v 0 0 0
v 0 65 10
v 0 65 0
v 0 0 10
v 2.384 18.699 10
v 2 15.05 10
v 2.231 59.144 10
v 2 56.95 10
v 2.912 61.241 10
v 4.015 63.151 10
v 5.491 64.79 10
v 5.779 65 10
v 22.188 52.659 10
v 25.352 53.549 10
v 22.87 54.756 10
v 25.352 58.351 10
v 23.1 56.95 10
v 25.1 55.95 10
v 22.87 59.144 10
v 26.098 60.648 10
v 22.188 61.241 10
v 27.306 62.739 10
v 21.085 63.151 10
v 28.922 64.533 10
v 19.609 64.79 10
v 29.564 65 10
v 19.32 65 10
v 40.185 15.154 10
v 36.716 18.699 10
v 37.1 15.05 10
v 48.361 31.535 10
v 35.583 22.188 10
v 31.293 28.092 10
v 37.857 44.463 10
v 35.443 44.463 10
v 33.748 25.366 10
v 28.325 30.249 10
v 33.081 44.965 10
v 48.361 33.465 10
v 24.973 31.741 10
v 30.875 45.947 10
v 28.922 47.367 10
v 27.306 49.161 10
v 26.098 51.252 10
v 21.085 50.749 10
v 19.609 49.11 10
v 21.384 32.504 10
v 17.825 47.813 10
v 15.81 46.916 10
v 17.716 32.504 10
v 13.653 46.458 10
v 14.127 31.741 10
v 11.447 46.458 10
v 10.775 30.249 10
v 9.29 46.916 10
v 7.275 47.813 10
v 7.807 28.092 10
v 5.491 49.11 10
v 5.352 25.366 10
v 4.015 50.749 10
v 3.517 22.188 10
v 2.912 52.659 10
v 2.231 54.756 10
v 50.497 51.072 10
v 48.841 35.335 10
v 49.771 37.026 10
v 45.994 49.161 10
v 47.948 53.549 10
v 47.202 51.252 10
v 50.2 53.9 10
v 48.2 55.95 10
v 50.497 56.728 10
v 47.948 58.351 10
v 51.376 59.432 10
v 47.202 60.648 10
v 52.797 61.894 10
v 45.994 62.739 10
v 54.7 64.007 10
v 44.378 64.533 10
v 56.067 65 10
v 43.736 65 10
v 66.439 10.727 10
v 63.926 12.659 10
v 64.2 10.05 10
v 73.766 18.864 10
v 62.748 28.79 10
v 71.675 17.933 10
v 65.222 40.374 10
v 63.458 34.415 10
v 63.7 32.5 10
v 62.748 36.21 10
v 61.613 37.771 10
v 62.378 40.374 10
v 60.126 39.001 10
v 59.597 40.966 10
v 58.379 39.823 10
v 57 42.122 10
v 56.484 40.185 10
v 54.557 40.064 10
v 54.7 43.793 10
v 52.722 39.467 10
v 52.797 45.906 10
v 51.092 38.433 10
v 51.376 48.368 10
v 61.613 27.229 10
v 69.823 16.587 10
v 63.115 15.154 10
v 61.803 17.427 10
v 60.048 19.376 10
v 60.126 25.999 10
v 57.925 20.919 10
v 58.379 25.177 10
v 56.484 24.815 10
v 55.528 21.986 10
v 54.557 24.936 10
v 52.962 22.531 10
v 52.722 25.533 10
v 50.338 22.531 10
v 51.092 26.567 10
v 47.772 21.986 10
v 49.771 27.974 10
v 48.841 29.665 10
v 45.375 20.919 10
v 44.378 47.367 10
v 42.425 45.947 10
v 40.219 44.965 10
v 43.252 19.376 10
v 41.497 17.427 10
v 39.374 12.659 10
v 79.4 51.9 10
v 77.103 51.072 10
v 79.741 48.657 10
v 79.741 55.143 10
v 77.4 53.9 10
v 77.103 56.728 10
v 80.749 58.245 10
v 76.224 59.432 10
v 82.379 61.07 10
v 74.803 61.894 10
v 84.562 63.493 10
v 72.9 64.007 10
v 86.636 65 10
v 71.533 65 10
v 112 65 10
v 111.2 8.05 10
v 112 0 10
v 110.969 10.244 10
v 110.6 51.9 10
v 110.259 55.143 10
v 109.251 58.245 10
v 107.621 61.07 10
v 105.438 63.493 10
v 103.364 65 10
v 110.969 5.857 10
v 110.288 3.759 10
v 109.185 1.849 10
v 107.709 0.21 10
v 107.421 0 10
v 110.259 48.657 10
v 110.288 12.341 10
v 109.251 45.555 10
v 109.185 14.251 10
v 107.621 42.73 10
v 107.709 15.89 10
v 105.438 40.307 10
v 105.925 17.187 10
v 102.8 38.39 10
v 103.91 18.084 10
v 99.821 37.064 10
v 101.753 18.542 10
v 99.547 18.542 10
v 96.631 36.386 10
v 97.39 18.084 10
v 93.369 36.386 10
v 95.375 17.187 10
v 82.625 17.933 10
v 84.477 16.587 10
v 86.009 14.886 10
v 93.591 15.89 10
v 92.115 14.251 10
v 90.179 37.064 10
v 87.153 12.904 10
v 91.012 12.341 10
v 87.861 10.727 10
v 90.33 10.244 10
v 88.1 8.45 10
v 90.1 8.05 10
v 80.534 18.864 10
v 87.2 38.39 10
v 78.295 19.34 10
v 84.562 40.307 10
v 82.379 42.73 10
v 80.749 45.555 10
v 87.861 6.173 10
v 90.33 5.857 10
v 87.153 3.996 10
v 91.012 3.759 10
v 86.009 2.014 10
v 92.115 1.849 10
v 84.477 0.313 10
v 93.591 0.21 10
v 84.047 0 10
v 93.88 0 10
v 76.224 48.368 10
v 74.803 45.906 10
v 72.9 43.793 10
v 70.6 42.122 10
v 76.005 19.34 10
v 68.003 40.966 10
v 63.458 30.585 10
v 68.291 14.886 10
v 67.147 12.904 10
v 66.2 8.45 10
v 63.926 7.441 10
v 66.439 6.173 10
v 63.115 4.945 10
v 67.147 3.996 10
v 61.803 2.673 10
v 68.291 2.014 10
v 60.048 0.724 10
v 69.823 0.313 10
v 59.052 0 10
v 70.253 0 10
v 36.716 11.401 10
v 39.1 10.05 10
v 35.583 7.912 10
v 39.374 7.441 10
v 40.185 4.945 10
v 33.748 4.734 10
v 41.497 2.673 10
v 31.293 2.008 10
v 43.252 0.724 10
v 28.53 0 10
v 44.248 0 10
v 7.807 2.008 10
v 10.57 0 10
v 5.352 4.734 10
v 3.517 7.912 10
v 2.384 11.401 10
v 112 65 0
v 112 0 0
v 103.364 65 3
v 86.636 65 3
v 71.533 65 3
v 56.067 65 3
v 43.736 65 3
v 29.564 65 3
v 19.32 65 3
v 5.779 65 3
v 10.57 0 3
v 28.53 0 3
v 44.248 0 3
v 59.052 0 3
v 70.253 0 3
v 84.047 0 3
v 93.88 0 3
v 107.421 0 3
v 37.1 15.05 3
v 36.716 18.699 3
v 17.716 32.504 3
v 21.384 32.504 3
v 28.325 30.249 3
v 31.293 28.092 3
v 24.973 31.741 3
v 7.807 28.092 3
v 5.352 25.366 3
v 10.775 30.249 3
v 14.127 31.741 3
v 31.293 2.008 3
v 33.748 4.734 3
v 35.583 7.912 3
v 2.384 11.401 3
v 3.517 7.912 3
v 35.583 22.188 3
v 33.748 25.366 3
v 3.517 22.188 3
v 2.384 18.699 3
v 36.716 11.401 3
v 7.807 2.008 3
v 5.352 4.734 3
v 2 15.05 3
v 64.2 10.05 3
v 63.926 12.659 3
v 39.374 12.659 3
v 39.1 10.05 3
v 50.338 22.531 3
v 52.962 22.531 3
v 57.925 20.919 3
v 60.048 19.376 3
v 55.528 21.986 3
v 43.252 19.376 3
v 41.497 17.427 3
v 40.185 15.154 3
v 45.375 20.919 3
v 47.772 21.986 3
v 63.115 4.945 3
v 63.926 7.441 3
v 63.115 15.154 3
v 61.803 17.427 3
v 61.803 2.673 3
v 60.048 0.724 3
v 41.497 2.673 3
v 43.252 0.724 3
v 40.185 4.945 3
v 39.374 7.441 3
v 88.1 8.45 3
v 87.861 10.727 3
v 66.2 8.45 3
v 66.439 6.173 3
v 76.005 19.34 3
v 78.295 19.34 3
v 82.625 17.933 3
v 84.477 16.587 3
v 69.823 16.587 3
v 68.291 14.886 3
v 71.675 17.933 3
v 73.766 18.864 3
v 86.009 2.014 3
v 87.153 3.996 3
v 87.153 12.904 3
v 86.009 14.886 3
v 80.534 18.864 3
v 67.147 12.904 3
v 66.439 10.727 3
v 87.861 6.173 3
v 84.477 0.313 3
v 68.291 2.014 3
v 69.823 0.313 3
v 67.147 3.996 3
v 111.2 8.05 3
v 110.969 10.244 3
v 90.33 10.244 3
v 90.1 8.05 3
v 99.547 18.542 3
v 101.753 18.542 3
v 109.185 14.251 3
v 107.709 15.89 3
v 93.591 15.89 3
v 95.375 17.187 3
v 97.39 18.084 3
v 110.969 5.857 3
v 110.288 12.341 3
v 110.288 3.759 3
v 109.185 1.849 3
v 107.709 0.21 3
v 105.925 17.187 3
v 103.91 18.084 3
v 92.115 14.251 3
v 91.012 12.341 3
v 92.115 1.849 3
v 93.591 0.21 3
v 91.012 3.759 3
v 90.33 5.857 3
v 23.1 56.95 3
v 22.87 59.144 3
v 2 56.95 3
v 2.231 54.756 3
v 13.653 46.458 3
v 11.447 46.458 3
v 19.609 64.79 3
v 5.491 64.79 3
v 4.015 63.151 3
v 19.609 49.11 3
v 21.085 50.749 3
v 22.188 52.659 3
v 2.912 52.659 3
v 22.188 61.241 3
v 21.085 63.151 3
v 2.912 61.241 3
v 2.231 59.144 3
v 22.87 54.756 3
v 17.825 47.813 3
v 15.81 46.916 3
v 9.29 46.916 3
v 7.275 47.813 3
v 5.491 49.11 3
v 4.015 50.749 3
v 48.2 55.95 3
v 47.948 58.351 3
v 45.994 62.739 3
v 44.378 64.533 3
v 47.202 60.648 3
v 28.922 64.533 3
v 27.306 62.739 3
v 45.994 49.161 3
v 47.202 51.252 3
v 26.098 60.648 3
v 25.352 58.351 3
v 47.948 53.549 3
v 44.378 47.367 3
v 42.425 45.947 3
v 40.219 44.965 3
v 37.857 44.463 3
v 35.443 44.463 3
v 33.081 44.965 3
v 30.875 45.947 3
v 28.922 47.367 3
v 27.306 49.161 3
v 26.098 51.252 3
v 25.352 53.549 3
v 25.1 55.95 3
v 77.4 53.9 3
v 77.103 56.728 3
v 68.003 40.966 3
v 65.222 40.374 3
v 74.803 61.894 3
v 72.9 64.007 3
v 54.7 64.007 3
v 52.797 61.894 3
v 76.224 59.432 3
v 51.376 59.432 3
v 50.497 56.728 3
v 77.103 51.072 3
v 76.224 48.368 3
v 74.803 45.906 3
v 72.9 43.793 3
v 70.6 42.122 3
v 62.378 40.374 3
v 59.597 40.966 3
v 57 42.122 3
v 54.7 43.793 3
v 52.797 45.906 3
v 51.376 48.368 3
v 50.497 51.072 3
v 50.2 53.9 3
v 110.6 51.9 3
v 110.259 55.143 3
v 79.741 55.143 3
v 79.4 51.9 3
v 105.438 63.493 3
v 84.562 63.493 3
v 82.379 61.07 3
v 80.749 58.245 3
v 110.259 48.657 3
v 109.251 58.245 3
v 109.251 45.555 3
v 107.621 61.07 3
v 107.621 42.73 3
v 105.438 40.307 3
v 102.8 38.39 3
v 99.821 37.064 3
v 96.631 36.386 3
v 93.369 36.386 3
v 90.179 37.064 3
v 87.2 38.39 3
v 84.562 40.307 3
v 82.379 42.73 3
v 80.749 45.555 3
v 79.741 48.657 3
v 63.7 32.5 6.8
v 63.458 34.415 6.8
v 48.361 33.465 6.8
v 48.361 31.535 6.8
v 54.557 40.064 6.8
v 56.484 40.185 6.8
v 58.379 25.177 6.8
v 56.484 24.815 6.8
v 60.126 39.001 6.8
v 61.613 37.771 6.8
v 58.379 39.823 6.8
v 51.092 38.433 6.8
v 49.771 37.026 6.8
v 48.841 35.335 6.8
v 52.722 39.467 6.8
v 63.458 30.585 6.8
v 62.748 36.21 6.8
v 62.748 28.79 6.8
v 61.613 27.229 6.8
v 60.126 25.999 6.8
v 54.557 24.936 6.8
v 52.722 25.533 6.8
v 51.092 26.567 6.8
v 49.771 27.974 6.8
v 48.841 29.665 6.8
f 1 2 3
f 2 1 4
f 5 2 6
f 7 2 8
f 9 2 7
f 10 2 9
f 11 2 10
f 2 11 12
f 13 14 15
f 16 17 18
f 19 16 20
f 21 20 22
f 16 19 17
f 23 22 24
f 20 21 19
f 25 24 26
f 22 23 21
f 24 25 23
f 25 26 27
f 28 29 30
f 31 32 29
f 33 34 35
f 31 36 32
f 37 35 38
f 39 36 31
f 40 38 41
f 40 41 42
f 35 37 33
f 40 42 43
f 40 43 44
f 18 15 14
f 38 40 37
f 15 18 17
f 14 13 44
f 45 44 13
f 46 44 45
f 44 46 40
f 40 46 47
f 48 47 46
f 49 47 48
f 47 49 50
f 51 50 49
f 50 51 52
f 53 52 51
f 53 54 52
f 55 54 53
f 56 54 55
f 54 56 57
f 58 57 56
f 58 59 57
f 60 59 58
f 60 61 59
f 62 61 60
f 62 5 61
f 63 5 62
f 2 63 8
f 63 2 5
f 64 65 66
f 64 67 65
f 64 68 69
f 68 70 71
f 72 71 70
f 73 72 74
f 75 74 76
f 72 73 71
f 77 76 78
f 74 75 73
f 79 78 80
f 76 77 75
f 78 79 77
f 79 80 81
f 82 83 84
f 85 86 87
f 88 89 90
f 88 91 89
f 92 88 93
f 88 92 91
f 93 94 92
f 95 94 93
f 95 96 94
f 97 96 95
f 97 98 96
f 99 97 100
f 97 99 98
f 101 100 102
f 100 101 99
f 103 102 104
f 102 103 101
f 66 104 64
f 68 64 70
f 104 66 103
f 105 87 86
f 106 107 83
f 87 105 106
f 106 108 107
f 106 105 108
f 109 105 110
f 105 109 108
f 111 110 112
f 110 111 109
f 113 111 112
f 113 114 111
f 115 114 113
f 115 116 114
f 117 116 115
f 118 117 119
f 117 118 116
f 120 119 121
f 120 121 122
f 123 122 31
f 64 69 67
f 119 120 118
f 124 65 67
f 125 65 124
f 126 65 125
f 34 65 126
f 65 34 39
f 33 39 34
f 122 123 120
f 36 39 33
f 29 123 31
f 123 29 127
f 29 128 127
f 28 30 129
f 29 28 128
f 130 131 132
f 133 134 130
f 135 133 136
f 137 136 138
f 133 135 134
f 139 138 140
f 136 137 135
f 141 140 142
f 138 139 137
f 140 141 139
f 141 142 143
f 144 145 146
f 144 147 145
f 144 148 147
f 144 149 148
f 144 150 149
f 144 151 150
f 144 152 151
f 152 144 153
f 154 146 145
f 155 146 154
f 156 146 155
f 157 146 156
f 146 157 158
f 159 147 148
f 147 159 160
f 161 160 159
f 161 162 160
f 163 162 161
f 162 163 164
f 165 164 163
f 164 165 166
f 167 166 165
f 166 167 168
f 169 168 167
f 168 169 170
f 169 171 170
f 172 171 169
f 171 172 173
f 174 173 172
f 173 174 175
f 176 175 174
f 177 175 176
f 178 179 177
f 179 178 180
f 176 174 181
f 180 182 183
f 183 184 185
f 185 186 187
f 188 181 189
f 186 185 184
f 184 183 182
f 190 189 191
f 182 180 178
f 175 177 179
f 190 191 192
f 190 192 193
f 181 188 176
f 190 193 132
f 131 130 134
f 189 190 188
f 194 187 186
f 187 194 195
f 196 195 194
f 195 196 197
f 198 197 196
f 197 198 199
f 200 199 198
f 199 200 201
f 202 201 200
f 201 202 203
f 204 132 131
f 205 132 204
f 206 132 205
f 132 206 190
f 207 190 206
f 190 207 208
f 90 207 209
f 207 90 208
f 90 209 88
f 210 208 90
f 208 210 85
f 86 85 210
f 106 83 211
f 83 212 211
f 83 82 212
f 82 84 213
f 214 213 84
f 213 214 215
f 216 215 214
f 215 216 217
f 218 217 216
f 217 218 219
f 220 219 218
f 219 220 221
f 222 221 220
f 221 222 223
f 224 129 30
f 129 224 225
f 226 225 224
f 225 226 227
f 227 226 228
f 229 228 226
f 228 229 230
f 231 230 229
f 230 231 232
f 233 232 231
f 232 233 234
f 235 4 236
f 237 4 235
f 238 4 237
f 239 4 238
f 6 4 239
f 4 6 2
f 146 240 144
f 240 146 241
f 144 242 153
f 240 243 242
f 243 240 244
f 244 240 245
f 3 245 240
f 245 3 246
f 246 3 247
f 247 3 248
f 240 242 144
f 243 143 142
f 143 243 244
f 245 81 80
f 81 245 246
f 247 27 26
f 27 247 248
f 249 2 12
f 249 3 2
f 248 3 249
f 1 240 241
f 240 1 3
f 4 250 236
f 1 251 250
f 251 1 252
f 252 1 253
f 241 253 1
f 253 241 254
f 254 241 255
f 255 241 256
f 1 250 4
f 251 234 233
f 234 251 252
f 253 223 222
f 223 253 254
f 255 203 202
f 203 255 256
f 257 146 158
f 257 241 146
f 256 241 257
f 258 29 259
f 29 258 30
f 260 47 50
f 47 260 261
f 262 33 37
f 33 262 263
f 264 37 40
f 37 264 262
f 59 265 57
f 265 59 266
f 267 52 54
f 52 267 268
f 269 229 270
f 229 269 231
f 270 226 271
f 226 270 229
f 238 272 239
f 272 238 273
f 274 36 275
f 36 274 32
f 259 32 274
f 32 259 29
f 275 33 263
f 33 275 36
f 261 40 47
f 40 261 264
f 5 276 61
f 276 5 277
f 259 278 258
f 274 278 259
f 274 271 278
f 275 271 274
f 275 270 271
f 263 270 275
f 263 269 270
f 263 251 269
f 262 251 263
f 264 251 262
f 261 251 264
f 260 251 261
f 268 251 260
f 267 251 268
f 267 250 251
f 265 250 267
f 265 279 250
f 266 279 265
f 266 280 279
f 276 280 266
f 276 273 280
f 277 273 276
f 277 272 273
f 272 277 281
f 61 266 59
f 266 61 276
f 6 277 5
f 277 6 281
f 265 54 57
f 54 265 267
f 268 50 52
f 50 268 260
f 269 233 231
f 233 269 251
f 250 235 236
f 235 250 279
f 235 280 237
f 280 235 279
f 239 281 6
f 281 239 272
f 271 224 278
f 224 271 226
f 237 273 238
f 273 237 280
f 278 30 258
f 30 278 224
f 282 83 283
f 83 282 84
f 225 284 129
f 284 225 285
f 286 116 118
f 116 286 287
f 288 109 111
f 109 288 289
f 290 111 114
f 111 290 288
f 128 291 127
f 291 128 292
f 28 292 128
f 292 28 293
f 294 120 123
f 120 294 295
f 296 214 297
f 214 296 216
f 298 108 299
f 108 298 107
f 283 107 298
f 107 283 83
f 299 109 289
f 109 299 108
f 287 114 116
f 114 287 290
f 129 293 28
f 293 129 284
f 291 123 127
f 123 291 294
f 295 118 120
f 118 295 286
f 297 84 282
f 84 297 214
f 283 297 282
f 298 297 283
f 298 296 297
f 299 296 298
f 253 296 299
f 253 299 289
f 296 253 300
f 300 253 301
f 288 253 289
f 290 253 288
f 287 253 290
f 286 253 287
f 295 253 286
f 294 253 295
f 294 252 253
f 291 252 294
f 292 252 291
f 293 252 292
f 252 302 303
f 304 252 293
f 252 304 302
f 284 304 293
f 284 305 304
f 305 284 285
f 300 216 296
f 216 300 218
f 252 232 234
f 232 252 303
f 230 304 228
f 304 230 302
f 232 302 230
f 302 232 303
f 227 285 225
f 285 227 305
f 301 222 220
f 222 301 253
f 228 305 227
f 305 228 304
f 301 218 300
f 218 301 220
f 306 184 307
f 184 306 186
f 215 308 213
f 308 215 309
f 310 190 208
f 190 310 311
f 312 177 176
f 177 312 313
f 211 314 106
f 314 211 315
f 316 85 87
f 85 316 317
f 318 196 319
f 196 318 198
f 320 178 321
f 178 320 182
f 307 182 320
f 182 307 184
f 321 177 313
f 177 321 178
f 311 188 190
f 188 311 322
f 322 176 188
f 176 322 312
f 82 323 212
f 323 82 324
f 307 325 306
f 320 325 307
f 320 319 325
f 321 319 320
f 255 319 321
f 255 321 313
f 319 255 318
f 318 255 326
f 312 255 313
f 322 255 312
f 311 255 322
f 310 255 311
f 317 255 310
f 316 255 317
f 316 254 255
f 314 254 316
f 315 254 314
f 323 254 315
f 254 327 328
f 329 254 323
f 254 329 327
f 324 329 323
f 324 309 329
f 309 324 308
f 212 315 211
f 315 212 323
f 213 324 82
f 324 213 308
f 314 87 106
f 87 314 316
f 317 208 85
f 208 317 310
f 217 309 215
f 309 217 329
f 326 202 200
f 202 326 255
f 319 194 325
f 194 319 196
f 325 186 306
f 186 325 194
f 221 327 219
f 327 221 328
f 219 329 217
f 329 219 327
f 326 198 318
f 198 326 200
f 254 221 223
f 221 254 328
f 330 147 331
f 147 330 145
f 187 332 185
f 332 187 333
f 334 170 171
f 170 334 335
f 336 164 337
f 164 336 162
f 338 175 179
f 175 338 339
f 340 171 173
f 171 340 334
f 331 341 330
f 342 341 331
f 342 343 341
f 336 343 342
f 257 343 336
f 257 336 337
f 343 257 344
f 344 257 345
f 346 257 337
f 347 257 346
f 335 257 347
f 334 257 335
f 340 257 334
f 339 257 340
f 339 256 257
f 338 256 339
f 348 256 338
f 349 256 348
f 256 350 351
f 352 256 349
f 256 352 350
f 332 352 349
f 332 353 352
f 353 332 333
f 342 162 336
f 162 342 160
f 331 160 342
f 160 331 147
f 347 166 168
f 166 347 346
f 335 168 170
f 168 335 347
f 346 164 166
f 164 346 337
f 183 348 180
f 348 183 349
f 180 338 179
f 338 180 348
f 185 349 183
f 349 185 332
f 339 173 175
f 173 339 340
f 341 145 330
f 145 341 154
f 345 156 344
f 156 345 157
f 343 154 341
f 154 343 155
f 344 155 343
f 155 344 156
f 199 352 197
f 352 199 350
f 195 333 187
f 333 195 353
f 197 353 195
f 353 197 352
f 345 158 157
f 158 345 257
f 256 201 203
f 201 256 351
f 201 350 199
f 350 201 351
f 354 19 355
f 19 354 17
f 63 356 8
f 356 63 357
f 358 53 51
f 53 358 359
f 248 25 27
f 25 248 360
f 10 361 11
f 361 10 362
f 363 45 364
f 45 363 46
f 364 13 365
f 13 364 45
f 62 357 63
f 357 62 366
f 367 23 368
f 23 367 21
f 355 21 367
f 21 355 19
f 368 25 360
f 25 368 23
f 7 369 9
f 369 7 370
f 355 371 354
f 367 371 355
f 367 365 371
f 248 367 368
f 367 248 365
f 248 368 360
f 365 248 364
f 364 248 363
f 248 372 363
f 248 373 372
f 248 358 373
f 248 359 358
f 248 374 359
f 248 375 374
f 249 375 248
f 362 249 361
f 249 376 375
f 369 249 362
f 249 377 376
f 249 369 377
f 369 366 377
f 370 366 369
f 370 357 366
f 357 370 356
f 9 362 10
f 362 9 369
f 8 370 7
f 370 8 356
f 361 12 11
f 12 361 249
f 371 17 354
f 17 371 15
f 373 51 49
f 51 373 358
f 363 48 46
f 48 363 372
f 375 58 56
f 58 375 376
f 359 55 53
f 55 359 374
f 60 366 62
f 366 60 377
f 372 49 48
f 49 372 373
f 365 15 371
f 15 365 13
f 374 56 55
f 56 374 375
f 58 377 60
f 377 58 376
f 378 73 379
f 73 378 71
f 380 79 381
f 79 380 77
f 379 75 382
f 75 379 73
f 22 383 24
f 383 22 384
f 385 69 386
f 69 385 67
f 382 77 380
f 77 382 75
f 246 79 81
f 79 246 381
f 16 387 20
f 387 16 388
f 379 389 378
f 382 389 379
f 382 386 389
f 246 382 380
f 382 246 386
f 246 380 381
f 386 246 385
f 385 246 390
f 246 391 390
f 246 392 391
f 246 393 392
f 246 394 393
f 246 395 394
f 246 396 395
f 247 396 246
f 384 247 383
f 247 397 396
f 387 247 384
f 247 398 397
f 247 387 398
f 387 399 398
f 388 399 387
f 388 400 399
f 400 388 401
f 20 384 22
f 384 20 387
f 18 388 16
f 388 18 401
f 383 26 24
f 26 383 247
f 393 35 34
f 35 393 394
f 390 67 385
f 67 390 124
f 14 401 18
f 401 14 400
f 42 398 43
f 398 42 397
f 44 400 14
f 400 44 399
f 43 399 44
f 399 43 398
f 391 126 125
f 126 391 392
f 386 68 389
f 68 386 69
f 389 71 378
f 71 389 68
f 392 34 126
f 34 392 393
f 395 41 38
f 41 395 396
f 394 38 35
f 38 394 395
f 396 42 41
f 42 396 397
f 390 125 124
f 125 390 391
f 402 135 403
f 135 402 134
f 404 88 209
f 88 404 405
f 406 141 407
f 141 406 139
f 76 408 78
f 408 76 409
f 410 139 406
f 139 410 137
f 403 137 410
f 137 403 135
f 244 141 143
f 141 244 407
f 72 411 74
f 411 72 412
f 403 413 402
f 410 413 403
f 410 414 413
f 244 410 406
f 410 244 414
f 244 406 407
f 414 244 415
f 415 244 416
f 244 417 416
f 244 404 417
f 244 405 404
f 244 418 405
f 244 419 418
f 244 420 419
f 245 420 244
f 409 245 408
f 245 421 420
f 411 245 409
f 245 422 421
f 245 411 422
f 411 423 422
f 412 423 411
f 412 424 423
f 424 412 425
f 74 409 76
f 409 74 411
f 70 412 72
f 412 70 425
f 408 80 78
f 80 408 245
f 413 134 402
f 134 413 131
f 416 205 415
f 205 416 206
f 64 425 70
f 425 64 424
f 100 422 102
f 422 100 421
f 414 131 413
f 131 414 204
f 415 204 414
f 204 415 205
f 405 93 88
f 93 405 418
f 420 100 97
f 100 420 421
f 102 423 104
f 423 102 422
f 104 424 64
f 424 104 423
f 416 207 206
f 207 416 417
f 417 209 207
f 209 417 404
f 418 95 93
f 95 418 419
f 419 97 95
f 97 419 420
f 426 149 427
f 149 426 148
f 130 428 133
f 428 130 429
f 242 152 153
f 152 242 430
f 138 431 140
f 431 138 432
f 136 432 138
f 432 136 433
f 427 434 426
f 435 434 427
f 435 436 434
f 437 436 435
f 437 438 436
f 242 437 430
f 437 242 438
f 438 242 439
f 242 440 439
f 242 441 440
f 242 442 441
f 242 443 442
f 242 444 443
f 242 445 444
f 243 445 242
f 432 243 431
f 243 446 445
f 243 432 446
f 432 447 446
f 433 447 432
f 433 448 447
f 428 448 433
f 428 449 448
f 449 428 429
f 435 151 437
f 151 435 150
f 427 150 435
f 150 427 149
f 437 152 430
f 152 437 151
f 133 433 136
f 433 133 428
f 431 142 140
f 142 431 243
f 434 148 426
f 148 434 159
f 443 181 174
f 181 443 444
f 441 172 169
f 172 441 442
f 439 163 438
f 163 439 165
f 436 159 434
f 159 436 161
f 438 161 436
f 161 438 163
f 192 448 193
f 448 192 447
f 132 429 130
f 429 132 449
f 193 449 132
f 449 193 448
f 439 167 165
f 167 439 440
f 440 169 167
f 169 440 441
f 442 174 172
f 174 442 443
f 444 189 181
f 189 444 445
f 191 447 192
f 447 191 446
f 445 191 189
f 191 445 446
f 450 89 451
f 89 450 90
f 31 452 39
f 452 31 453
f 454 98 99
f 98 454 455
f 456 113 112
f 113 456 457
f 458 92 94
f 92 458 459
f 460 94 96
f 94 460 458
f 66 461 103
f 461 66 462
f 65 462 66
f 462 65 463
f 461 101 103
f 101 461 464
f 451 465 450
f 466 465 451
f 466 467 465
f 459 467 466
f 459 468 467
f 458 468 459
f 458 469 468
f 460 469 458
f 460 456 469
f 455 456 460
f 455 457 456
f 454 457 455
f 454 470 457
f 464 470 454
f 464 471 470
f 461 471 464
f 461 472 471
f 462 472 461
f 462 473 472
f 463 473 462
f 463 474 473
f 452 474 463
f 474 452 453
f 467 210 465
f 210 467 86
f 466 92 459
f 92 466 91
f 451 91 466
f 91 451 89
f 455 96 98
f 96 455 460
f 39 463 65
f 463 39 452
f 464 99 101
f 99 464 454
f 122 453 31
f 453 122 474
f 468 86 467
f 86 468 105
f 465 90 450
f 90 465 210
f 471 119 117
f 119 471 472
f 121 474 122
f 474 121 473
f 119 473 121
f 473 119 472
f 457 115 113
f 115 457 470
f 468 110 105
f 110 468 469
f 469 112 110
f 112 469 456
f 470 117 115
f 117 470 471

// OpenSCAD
length = 112; 
width = 65;
height = 10;

floorThickness = 3;

//Based on magnet size:
magnetBaseOuterDiameter = 20;
magnetBaseInnerDiameter = 15.4;
magnetHeight = 3.2;




coinOffset = 2.5;
fiftyCoinDiameter = 34.1 + 1;
twentyCoinDiameter = 30.2 + 1;
tenCoinDiameter = 26.2 + 1;
fiveCoinDiameter = 24.1 + 1;
threeCoinDiameter = 22.1 + 1;
twoCoinDiameter = 20.9 + 1;
oneCoinDiameter = 20.1 + 1;

spaceBetweenCircles = 2;

difference(){
    cube([length, width, height]);

    translate([fiftyCoinDiameter/2 + spaceBetweenCircles, fiftyCoinDiameter/2 - coinOffset, floorThickness])
        cylinder(height - floorThickness, d=fiftyCoinDiameter);

    translate([fiftyCoinDiameter + fiveCoinDiameter/2 + spaceBetweenCircles * 2, fiveCoinDiameter/2 - coinOffset, floorThickness])
        cylinder(height - floorThickness, d=fiveCoinDiameter);
    
    translate([fiftyCoinDiameter + fiveCoinDiameter + twoCoinDiameter/2 + spaceBetweenCircles * 3, twoCoinDiameter/2 - coinOffset, floorThickness])
        cylinder(height - floorThickness, d=twoCoinDiameter);
    
    translate([fiftyCoinDiameter + fiveCoinDiameter + twoCoinDiameter + oneCoinDiameter/2 + spaceBetweenCircles * 4, oneCoinDiameter/2 - coinOffset, floorThickness])
        cylinder(height - floorThickness, d=oneCoinDiameter);
  
    
    translate([oneCoinDiameter/2 + spaceBetweenCircles, width - (oneCoinDiameter/2 - coinOffset), floorThickness])
        cylinder(height - floorThickness, d=oneCoinDiameter);
    
    translate([oneCoinDiameter + threeCoinDiameter/2 + spaceBetweenCircles * 2, width - (threeCoinDiameter/2 - coinOffset), floorThickness])
        cylinder(height - floorThickness, d=threeCoinDiameter);
    
    translate([oneCoinDiameter + threeCoinDiameter + tenCoinDiameter/2 + spaceBetweenCircles * 3, width - (tenCoinDiameter/2 - coinOffset), floorThickness])
        cylinder(height - floorThickness, d=tenCoinDiameter);
        
        translate([oneCoinDiameter + threeCoinDiameter + tenCoinDiameter + twentyCoinDiameter/2 + spaceBetweenCircles * 4, width - (twentyCoinDiameter/2 - coinOffset), floorThickness])
        cylinder(height - floorThickness, d=twentyCoinDiameter);

//    translate([length /2 - (smallCircleDiameter/2 + spaceBetweenCircles / 2), width - (smallCircleDiameter/2 - smallCircleOffset), floorThickness])
//        cylinder(height - floorThickness, d=smallCircleDiameter);
//    
//    translate([length /2 + (smallCircleDiameter/2 + spaceBetweenCircles / 2), width - (smallCircleDiameter/2 - smallCircleOffset), floorThickness])
//        cylinder(height - floorThickness, d=smallCircleDiameter);
//    
//    translate([length - (smallCircleDiameter/2 + spaceBetweenCircles), width - (smallCircleDiameter/2 - smallCircleOffset), floorThickness])
//        cylinder(height - floorThickness, d=smallCircleDiameter);
//    
    

//
//    translate([largeCircleDiameter/2 + spaceBetweenCircles - largeCircleOffset, width/2, floorThickness])
//        cylinder(height - floorThickness, d=largeCircleDiameter);
//
//    translate([length - (largeCircleDiameter/2 + spaceBetweenCircles - largeCircleOffset), width/2, floorThickness])
//        cylinder(height - floorThickness, d=largeCircleDiameter);
        
    translate([length/2, width/2, height - magnetHeight])
        cylinder(magnetHeight, d=magnetBaseInnerDiameter);
        

}
